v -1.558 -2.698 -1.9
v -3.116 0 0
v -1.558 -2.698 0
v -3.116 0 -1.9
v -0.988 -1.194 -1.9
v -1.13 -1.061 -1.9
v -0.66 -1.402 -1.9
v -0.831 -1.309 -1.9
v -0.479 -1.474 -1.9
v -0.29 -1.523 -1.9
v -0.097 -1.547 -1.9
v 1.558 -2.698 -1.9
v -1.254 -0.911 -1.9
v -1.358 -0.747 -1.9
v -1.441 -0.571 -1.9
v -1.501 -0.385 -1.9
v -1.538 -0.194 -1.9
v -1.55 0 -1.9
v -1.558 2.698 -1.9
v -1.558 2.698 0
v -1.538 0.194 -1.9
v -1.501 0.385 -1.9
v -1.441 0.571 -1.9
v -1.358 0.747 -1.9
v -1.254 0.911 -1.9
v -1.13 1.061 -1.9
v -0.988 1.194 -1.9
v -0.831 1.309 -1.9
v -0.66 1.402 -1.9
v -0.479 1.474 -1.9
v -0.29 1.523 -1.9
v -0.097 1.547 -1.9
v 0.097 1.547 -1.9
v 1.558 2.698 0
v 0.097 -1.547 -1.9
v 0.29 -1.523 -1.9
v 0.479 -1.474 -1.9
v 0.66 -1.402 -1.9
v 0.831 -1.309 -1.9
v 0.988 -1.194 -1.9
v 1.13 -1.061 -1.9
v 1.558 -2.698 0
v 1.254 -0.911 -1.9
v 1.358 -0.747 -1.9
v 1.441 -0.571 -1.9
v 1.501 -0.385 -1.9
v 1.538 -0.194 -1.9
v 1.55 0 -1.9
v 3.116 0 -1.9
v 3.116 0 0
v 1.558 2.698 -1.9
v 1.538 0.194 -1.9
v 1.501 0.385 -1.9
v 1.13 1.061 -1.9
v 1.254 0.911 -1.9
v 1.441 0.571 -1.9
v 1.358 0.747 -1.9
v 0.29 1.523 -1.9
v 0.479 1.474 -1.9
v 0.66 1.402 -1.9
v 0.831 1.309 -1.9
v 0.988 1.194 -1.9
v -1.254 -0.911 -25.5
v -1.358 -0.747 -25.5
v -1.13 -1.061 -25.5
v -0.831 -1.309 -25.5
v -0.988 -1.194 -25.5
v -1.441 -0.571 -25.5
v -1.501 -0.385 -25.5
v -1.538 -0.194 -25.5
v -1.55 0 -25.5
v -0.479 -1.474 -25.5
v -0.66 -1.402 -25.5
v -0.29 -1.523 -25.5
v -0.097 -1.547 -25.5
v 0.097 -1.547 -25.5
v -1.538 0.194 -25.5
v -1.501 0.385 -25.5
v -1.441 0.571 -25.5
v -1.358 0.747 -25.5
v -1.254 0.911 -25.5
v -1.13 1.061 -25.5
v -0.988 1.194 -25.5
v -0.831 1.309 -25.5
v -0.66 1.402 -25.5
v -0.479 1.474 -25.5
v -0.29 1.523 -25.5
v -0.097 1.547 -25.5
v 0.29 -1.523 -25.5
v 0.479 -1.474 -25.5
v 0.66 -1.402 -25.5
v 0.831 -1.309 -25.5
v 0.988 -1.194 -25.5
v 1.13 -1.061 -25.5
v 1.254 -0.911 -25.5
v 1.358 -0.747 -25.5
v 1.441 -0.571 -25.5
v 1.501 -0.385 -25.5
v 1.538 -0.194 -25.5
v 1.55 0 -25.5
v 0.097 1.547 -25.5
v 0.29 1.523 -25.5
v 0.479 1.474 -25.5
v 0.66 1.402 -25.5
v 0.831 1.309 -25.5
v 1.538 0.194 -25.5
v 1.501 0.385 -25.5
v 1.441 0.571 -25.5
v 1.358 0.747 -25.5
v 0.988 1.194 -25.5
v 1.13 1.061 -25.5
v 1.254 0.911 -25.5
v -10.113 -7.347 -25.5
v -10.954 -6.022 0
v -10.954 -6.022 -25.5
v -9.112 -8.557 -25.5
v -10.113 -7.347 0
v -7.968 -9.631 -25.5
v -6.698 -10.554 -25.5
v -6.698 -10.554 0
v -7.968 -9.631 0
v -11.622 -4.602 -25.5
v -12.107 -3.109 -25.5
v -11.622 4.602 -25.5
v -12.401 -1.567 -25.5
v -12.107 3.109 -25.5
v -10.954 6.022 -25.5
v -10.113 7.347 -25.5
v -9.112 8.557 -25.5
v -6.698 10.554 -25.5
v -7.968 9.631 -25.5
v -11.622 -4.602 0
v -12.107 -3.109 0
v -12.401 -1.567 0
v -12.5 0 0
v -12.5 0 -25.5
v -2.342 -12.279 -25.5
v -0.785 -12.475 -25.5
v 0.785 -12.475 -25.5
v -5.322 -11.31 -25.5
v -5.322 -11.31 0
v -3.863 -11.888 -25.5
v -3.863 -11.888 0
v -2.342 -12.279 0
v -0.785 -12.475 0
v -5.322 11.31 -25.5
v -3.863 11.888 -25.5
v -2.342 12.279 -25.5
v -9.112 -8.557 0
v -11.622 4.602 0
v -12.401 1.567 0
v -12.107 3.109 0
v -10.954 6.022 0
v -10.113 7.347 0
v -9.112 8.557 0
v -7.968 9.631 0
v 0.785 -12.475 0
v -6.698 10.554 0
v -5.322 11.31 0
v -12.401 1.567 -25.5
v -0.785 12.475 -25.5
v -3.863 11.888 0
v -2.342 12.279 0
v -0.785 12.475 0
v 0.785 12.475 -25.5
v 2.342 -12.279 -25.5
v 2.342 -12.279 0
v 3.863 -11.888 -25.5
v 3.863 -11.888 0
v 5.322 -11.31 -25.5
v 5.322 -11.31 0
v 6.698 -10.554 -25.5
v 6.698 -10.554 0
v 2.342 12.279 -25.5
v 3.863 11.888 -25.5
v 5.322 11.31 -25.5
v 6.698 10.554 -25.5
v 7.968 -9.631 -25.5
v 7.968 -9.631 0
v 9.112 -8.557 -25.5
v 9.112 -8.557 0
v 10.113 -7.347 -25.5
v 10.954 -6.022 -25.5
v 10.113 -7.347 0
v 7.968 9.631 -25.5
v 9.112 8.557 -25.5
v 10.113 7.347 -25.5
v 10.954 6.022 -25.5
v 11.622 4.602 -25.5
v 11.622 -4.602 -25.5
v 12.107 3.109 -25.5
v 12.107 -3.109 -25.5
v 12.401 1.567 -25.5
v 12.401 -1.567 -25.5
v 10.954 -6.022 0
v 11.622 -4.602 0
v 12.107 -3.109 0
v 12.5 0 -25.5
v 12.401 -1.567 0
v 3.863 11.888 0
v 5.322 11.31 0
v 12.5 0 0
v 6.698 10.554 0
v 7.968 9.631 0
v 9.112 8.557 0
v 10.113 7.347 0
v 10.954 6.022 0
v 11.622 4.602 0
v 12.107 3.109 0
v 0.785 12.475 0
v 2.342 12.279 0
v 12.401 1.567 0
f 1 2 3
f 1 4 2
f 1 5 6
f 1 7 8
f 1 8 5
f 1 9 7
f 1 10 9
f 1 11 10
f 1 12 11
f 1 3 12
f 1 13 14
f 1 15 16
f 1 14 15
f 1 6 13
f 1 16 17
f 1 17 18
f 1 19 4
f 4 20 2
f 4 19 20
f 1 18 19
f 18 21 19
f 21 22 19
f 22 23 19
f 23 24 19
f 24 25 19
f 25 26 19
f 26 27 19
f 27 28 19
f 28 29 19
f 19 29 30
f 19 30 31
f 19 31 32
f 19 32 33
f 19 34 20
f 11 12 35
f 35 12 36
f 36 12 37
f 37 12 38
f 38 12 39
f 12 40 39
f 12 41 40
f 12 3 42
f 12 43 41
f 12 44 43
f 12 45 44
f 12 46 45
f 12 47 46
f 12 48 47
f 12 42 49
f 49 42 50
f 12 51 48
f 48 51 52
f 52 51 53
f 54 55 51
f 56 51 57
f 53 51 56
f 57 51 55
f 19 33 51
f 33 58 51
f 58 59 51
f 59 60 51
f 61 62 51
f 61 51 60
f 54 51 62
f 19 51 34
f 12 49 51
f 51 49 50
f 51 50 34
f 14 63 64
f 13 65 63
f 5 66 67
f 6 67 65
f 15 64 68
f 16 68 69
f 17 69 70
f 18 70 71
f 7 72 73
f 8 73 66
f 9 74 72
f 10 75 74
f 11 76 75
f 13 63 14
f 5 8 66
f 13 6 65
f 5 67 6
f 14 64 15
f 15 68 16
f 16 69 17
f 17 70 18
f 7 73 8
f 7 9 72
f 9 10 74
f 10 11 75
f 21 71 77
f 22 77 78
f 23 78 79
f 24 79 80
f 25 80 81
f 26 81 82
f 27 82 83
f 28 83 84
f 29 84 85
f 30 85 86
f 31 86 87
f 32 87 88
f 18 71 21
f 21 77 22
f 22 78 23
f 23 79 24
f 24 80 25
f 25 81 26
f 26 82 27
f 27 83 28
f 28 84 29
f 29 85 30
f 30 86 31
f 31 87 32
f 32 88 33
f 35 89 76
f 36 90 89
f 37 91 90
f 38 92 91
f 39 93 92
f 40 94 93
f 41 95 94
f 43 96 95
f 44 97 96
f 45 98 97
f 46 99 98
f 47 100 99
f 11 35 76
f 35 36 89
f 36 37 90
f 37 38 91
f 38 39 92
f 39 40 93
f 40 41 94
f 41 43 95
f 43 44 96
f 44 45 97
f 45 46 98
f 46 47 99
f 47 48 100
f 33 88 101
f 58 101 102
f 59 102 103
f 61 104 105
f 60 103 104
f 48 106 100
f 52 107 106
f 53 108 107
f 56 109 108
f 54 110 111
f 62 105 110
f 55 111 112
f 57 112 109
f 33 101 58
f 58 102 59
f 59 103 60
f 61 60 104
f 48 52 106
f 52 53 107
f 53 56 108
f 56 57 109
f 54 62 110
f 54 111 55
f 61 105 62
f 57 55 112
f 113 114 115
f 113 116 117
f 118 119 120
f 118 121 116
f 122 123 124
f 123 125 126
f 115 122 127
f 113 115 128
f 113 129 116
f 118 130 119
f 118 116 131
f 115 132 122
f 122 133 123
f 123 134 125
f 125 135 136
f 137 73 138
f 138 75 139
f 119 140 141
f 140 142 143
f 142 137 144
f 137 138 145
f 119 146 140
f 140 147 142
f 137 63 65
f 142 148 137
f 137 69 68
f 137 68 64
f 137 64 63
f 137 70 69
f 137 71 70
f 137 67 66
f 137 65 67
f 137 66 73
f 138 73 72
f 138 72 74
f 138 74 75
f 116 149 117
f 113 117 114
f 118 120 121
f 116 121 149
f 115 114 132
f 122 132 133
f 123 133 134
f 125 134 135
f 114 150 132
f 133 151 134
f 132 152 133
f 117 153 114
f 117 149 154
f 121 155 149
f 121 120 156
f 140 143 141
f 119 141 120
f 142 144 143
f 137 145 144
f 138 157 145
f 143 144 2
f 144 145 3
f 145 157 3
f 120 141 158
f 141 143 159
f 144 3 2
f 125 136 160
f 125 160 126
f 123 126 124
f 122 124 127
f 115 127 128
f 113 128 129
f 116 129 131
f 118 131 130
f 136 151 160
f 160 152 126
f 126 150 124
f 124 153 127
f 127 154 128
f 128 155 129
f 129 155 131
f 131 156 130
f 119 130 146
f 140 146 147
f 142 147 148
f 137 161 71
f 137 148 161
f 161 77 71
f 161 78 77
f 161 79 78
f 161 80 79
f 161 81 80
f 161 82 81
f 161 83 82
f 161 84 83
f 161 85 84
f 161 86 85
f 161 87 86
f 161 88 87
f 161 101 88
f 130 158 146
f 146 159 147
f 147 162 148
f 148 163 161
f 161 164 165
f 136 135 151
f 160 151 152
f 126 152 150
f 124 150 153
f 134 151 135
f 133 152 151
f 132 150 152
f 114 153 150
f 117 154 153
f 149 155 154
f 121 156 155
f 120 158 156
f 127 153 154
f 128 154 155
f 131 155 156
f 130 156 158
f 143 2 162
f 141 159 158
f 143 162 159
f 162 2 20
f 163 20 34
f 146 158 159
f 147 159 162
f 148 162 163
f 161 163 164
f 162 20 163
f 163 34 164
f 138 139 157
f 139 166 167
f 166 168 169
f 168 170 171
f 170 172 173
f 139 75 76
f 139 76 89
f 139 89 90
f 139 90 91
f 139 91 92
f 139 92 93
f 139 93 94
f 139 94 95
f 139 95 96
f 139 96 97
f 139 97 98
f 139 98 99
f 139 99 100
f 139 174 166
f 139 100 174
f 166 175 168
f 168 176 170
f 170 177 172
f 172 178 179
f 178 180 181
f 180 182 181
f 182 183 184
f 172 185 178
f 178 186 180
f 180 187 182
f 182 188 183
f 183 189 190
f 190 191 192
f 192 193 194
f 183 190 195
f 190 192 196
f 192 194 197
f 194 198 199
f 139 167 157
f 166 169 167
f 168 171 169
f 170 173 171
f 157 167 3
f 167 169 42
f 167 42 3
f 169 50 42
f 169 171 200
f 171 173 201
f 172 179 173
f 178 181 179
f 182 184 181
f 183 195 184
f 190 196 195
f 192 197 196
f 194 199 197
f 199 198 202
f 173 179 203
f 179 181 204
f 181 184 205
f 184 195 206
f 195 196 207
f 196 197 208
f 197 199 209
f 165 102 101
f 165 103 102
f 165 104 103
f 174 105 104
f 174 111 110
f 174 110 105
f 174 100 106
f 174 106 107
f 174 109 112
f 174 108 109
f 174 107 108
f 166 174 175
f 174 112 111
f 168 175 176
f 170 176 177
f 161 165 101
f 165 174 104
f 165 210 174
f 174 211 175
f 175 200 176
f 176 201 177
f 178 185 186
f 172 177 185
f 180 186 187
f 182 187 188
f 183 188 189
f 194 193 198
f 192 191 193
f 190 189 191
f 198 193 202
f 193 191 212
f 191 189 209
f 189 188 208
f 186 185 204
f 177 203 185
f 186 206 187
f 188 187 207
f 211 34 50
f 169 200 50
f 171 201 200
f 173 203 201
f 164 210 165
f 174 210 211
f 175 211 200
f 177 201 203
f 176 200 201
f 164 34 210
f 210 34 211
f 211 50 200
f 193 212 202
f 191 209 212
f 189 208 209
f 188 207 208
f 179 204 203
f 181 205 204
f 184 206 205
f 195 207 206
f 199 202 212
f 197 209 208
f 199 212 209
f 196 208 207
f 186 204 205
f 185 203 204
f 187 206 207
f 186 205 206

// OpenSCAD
$fn = 50;


difference() {
	union() {
		translate(v = [0, 0, -25.5000000000]) {
			cylinder(h = 25.5000000000, r = 12.5000000000);
		}
	}
	union() {
		translate(v = [0, 0, 0]) {
			rotate(a = [0, 0, 0]) {
				difference() {
					union() {
						translate(v = [0, 0, -1.9000000000]) {
							linear_extrude(height = 1.9000000000) {
								polygon(points = [[3.1158000000, 0.0000000000], [1.5579000000, 2.6983619531], [-1.5579000000, 2.6983619531], [-3.1158000000, 0.0000000000], [-1.5579000000, -2.6983619531], [1.5579000000, -2.6983619531]]);
							}
						}
					}
					union();
				}
			}
		}
		#translate(v = [0, 0, -100.0000000000]) {
			cylinder(h = 200, r = 1.5500000000);
		}
	}
}
